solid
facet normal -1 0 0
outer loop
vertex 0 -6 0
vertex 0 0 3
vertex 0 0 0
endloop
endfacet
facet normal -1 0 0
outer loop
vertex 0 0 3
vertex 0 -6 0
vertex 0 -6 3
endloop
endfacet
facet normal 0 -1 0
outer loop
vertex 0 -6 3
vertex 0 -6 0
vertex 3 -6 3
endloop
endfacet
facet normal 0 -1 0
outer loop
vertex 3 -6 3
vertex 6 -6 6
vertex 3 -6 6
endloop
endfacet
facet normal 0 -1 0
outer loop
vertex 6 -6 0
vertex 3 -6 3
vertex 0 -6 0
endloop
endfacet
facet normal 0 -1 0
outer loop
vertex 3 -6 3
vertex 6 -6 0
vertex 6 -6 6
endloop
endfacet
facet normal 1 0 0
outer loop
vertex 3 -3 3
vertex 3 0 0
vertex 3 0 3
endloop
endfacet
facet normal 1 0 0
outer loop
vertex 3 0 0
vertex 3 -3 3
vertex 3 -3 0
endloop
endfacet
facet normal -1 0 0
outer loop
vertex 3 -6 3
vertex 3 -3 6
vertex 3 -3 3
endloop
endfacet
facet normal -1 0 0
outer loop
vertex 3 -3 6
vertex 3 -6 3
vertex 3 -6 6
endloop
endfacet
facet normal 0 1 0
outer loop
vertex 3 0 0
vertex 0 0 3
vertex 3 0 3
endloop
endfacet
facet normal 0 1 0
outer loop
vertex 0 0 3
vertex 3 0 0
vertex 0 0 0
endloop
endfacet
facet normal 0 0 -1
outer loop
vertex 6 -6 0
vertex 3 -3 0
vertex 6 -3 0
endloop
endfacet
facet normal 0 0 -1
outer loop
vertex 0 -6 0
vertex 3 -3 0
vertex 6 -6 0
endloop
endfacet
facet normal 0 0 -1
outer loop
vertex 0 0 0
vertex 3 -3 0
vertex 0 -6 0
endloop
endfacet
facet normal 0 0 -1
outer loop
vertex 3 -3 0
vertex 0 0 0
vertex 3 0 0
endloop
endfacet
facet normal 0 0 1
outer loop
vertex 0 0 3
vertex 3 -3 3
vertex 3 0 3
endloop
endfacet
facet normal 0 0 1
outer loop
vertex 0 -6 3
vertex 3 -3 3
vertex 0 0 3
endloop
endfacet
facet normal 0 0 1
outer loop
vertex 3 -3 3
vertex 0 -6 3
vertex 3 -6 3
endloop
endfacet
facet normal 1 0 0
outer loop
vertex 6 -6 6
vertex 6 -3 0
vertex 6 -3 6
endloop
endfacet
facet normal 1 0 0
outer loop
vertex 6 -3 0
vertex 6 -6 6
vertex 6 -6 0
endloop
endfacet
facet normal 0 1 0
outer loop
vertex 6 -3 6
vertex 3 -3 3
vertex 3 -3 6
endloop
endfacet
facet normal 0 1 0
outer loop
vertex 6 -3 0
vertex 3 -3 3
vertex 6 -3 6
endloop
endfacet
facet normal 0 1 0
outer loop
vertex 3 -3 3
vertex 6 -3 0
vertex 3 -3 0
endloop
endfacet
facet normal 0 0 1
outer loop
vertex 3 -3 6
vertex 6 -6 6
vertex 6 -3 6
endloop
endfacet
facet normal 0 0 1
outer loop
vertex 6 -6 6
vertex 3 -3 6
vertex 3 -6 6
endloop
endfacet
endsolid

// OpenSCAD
module bausteinlinks(){
    union(){
        cube([3,3,6]);
        translate([3,0,3])
            cube([3,6,3]);
        }
}
rotate([90,0,0])
    bausteinlinks();
